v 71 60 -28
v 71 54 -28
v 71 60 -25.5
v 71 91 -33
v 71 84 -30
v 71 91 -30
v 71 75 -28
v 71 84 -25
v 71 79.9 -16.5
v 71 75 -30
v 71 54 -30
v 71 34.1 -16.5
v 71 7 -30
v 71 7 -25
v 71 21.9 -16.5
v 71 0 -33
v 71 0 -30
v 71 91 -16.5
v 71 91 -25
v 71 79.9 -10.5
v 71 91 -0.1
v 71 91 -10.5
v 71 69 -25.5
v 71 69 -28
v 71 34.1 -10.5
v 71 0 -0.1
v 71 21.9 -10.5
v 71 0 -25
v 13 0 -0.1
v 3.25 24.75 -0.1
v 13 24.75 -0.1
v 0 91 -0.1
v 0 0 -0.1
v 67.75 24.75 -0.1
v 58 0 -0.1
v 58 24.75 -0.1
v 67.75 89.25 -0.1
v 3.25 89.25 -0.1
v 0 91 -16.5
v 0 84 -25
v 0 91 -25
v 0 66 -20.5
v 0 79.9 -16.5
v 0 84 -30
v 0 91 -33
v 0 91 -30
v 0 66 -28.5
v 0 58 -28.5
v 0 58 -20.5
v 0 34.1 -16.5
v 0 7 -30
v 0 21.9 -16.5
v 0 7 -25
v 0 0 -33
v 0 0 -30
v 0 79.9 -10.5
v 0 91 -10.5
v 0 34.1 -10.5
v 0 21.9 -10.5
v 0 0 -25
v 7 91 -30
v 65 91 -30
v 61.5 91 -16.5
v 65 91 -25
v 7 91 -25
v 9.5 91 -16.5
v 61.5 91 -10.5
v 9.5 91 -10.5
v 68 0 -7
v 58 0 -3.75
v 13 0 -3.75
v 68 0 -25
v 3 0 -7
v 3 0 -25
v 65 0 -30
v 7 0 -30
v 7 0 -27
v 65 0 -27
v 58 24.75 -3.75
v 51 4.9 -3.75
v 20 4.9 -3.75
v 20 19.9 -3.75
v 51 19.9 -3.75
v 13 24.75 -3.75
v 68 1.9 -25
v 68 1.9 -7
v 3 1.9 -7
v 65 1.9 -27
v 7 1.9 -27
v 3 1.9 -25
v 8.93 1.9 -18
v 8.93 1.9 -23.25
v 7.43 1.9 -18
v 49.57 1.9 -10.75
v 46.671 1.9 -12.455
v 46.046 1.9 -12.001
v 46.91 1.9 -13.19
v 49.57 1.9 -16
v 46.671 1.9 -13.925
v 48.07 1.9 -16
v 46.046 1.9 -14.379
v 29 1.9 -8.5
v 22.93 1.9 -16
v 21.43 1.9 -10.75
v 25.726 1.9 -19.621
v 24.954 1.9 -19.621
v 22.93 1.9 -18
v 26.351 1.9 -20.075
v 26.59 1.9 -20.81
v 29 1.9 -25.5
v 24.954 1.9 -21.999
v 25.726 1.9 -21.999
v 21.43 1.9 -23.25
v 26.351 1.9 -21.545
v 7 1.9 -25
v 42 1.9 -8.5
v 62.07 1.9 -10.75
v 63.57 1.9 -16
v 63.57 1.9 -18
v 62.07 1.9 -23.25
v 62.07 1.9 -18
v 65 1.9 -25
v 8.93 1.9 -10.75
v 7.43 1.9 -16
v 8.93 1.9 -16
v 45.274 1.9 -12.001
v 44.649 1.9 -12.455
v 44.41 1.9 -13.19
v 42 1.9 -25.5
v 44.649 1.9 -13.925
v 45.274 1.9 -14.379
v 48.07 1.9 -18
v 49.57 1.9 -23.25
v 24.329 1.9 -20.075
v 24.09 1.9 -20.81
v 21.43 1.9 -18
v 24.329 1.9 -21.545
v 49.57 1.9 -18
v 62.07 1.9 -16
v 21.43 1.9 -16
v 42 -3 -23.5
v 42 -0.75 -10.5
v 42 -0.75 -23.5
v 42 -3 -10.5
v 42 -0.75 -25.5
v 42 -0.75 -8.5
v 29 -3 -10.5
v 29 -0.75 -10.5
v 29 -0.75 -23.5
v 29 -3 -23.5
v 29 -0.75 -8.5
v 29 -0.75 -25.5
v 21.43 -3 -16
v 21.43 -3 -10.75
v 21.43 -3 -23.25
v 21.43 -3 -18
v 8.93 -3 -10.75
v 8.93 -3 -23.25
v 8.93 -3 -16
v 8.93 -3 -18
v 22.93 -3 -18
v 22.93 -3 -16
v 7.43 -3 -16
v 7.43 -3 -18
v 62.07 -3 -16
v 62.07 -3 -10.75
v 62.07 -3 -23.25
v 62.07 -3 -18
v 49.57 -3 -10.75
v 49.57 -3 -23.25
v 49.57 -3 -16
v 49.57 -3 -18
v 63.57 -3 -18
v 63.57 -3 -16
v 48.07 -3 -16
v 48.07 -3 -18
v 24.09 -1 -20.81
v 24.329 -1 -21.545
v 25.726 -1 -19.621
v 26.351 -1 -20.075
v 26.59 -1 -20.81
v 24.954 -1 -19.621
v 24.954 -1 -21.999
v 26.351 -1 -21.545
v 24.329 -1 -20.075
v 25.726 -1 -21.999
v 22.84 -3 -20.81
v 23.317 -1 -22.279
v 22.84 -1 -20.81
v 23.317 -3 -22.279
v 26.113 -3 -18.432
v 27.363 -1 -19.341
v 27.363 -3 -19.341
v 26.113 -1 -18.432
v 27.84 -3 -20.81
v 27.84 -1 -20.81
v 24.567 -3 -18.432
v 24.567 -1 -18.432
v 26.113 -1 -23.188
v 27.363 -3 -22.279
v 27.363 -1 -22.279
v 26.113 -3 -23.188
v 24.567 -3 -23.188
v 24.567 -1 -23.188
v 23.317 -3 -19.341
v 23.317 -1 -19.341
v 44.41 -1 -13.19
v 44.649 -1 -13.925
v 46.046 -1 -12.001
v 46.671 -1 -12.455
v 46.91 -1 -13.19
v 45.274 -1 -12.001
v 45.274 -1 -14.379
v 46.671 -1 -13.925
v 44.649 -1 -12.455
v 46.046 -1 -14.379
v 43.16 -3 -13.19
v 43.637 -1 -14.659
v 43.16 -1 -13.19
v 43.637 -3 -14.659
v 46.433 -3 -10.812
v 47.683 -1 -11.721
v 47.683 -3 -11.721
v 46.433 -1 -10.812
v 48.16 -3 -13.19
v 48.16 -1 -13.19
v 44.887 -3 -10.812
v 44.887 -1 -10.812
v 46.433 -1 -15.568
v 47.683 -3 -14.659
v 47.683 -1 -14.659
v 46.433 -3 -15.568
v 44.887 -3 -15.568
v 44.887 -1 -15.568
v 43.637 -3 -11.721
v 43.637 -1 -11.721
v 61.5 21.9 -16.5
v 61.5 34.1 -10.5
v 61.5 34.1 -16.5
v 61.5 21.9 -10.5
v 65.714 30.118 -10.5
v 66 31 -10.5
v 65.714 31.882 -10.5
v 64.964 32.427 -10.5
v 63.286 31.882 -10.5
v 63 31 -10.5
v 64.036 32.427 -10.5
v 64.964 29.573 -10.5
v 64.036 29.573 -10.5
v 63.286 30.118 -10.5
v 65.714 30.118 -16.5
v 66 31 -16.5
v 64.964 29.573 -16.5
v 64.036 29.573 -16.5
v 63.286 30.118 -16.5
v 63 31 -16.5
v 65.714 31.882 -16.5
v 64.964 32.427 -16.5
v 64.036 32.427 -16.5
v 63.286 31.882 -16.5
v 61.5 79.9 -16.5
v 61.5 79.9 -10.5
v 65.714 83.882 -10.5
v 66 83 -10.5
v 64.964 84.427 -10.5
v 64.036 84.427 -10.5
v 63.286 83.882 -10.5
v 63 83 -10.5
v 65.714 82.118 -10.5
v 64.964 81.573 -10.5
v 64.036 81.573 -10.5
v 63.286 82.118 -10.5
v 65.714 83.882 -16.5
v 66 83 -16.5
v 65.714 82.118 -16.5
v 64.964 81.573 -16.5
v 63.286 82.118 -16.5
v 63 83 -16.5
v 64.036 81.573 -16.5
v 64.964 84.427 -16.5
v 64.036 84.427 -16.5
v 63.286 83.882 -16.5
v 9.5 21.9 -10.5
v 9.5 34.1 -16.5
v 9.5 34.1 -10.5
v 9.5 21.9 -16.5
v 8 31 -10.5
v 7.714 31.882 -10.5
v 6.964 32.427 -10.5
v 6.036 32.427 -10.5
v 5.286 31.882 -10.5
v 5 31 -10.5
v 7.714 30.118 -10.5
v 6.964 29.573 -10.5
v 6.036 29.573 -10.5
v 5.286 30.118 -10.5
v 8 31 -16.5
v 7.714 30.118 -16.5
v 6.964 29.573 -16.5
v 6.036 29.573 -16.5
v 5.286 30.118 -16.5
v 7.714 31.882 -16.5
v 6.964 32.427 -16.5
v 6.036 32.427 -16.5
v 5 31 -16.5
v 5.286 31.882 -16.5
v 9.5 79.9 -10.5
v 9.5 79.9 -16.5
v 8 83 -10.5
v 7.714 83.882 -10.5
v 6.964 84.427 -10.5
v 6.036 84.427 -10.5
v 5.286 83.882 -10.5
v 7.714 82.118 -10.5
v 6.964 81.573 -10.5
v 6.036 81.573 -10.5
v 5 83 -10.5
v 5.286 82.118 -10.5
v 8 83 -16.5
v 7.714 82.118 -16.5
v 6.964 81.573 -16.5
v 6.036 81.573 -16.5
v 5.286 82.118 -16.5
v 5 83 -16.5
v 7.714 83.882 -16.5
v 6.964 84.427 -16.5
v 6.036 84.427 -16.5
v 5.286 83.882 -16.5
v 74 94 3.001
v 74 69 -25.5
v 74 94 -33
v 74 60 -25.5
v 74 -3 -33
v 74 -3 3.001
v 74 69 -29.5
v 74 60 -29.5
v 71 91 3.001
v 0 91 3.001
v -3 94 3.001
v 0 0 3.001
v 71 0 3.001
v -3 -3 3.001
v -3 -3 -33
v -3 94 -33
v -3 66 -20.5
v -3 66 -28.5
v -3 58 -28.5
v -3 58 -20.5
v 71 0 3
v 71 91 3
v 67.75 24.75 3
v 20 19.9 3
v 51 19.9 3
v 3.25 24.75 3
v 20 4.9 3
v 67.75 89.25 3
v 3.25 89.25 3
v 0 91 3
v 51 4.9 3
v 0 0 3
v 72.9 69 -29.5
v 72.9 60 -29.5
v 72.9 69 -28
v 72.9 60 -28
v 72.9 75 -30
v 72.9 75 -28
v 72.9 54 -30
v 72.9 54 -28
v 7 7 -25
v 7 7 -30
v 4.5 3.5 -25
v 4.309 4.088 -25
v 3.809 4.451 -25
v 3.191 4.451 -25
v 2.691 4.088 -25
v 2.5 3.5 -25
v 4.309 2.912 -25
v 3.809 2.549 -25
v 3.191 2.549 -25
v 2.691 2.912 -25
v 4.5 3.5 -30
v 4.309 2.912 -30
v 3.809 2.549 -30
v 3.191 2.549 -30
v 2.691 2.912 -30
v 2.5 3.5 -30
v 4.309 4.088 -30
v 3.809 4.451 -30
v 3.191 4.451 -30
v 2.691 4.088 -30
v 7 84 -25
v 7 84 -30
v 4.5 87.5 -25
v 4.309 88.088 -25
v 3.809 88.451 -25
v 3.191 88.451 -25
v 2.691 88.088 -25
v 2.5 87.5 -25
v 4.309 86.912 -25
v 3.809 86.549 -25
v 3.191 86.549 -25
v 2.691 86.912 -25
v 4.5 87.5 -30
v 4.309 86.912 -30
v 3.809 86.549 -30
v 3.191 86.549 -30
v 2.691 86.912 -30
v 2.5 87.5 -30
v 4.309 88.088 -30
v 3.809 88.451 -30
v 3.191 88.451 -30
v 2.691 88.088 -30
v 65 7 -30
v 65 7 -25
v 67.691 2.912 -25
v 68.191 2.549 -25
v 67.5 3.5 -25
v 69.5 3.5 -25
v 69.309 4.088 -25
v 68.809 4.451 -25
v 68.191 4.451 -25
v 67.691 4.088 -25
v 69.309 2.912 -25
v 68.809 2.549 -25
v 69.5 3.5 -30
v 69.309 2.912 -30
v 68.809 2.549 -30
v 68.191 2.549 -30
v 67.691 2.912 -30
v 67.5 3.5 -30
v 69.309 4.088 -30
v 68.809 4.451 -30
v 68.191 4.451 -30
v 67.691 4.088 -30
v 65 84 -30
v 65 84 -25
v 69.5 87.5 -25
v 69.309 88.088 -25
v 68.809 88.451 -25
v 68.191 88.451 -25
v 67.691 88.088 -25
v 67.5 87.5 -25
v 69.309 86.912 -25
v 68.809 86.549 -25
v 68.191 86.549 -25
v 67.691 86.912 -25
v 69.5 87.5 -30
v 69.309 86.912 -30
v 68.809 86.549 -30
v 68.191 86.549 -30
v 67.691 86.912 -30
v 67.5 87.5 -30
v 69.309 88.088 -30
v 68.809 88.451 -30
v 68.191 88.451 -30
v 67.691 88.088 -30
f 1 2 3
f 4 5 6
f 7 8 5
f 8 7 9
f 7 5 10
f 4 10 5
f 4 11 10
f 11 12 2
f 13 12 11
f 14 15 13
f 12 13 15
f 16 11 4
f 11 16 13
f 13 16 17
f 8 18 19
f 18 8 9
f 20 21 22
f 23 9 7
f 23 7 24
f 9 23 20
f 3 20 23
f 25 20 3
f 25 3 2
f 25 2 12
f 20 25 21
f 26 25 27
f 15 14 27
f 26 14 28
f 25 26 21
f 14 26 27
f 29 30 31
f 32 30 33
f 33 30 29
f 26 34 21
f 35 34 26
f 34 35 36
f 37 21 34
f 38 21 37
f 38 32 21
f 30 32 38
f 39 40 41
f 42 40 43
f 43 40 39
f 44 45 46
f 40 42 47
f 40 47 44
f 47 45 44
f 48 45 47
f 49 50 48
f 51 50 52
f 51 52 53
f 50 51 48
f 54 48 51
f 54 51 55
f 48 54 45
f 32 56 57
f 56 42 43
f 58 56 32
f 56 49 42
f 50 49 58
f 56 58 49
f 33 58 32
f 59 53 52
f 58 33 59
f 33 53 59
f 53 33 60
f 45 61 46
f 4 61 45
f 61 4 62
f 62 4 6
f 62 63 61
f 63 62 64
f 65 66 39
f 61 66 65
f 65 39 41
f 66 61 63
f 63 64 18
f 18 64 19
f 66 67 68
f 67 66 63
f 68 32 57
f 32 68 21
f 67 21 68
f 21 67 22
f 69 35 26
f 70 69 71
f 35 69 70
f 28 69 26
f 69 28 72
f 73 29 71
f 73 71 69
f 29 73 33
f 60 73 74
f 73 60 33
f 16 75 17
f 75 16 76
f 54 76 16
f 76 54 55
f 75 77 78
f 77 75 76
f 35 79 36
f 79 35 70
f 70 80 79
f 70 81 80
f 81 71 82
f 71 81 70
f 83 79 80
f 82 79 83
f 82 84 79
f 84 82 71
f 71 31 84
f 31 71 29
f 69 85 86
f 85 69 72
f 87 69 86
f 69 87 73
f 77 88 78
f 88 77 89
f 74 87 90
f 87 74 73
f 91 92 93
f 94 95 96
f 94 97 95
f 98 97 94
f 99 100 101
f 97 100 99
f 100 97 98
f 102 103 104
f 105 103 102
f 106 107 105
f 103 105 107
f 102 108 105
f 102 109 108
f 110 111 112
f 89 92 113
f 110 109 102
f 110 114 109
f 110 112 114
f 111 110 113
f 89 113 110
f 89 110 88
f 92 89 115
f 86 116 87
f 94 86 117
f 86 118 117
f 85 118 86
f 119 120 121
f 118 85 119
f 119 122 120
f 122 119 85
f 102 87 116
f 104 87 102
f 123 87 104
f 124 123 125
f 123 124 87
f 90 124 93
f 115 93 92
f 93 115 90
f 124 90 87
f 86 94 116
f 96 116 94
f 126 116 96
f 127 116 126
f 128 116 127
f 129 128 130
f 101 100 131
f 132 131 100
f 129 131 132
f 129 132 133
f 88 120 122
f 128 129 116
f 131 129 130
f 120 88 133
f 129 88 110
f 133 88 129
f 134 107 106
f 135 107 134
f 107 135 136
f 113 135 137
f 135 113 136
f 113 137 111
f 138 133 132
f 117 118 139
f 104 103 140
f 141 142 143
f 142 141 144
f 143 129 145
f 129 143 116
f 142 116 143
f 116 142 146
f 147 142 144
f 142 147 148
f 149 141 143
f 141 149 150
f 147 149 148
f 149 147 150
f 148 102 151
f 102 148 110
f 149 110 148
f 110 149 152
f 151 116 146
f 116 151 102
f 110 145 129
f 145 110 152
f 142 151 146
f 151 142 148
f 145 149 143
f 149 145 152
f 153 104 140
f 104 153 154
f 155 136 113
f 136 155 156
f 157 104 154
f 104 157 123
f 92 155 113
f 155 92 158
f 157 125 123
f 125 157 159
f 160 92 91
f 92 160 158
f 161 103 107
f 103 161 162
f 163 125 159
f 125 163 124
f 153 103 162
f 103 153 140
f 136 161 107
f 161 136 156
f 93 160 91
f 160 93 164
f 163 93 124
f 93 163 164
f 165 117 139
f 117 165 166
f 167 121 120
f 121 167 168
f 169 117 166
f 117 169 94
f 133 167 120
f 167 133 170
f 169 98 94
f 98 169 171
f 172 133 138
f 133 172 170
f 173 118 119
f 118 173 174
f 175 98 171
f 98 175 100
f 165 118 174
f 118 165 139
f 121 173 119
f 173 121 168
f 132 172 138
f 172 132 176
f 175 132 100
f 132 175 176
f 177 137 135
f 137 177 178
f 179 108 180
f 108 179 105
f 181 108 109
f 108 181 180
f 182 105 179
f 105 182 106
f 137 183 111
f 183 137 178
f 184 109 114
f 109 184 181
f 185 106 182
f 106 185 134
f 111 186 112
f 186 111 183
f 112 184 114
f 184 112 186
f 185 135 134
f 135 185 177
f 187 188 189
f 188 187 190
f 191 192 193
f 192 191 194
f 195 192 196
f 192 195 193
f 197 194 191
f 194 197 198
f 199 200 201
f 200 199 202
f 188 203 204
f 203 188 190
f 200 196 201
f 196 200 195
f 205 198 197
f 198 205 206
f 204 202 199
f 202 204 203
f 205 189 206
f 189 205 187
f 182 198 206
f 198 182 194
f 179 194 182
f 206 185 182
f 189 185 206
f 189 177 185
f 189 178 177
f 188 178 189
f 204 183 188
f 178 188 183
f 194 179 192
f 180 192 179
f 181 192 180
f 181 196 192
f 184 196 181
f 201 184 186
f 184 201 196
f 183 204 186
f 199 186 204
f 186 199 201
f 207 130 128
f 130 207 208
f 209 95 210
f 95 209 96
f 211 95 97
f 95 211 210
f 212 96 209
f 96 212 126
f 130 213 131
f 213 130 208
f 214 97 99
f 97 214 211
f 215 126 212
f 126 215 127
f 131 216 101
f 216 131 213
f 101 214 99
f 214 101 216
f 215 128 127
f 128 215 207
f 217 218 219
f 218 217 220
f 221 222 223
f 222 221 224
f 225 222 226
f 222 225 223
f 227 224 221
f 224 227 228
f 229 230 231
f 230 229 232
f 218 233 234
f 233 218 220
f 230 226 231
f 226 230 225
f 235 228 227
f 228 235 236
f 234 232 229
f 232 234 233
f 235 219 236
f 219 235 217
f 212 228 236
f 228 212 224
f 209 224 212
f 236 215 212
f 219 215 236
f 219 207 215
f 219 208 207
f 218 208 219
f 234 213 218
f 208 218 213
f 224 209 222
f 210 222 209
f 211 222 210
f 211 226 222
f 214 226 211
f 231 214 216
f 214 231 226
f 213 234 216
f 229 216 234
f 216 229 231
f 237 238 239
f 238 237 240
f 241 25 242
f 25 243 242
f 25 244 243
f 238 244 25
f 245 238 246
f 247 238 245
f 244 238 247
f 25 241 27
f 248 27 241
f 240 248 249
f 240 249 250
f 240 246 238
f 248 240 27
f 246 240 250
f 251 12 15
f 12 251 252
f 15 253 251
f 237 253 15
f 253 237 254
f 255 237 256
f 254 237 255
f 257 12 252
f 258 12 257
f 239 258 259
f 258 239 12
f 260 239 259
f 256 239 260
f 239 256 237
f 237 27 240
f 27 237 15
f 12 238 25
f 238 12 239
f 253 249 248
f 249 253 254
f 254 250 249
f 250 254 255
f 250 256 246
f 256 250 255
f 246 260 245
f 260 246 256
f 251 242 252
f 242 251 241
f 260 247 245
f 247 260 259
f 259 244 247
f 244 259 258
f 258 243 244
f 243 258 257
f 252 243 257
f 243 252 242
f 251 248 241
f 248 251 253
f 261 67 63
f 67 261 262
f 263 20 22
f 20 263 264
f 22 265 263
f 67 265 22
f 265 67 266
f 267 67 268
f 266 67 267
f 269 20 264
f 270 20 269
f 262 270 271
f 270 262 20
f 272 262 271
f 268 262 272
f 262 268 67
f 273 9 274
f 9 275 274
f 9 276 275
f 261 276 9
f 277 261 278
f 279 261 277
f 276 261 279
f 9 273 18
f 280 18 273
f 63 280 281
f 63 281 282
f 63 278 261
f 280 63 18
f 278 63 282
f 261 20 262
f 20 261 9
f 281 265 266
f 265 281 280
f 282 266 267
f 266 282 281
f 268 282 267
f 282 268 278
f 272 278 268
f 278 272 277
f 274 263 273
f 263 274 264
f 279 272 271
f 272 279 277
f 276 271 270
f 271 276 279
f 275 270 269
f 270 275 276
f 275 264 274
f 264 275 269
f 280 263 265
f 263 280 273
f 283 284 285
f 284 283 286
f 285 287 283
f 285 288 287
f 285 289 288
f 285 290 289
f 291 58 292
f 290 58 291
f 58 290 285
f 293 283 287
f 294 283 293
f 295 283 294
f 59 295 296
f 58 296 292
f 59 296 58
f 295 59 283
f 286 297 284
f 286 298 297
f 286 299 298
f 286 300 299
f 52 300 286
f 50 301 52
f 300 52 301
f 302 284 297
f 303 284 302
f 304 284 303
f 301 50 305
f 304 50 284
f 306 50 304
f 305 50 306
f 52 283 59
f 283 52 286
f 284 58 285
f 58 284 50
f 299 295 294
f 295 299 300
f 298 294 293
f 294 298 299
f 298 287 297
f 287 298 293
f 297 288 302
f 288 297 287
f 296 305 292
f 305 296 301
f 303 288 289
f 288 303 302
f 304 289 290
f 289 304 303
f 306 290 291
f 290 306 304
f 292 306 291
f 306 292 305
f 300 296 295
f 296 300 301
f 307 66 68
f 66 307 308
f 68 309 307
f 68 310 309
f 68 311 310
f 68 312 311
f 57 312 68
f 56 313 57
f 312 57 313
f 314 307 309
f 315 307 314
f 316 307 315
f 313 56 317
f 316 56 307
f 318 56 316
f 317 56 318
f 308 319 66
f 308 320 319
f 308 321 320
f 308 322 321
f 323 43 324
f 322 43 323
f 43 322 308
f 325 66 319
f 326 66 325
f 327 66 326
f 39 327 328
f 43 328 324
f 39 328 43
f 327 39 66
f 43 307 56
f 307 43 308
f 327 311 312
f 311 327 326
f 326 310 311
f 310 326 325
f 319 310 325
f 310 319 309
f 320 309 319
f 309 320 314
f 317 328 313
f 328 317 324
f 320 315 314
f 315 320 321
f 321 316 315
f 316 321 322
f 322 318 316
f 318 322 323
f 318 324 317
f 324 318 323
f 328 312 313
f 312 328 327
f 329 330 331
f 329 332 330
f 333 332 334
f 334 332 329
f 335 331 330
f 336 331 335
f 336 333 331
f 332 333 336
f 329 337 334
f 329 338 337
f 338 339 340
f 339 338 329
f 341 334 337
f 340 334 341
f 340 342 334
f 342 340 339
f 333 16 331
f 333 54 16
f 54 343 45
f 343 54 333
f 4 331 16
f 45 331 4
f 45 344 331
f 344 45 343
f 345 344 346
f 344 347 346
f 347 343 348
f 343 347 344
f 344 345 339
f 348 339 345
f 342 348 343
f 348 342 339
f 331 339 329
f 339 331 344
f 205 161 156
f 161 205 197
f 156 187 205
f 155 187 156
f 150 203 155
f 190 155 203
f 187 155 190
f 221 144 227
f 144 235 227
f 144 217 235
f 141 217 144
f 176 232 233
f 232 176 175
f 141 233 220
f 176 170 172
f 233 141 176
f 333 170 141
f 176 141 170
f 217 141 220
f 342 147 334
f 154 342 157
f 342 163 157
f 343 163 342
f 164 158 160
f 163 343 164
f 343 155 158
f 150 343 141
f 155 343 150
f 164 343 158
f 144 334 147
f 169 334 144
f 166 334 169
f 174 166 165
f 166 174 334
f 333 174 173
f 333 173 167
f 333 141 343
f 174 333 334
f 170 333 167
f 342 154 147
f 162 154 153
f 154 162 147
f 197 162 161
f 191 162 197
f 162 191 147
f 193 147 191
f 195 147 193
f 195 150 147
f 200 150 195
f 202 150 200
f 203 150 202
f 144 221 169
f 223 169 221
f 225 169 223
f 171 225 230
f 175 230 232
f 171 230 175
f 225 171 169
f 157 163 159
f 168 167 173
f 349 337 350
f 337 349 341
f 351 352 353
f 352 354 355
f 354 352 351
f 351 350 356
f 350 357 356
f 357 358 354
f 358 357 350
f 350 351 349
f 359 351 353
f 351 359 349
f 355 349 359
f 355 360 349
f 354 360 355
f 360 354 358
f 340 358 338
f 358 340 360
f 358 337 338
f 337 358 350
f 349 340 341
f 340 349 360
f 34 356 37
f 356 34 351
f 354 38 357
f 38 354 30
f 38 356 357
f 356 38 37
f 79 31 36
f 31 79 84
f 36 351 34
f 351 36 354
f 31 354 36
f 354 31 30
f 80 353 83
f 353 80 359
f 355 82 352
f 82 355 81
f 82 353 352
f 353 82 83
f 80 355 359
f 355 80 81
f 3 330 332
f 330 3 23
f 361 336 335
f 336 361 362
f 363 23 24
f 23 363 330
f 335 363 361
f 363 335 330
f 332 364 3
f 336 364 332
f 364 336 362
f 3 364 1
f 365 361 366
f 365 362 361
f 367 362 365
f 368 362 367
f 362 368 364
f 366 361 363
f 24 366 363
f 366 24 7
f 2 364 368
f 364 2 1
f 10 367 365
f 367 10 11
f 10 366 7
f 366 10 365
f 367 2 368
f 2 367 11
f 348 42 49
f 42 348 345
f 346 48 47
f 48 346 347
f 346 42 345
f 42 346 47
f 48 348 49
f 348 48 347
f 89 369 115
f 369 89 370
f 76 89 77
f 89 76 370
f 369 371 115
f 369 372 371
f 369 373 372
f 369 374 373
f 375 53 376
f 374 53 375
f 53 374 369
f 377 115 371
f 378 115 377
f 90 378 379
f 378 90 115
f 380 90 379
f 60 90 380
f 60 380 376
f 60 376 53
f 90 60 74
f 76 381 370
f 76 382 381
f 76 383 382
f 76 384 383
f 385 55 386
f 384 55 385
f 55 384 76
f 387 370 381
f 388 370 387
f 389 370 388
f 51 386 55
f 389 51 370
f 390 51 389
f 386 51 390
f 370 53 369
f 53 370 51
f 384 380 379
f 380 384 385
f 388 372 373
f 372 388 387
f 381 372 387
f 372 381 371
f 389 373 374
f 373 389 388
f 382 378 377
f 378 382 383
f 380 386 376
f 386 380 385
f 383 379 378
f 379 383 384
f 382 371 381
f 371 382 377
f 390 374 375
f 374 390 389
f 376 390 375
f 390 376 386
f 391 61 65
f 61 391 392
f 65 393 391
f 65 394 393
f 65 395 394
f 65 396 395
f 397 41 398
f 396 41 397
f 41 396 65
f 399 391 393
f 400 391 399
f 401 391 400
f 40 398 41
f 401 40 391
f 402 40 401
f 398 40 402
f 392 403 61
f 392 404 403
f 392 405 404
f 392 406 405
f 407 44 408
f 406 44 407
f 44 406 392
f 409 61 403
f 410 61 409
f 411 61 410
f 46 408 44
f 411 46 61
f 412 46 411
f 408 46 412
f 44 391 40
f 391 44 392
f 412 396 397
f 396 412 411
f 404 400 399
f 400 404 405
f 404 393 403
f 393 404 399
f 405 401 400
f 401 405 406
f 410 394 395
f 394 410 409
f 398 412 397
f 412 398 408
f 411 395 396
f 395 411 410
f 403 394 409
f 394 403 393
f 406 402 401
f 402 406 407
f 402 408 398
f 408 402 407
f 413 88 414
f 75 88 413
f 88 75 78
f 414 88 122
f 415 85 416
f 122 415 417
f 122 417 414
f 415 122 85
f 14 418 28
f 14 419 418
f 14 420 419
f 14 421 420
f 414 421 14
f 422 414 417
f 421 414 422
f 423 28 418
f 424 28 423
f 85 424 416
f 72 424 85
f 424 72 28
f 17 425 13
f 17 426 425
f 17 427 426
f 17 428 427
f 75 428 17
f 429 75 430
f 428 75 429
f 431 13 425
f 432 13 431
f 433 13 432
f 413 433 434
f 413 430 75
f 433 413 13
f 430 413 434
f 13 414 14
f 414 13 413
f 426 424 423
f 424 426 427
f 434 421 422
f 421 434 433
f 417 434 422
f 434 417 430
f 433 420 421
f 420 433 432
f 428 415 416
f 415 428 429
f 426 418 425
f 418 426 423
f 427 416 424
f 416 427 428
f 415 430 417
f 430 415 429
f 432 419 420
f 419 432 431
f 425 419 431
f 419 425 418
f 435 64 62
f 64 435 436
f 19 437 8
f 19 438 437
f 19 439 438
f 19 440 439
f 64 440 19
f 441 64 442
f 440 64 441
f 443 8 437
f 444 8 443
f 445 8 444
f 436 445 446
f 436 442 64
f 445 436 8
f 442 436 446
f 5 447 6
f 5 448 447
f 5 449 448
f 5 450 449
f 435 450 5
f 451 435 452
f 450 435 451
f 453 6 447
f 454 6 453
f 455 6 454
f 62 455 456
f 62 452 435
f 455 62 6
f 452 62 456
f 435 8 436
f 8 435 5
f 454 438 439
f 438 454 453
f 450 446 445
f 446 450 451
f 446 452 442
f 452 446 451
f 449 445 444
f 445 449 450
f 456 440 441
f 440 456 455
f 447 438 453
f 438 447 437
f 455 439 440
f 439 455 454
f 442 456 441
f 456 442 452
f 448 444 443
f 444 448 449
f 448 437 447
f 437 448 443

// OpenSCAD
// box for 16x16 timer
//  top side (closed) is where displays are
//  bottom side is closed with lid, made out of PCB

// rev 2 ("yellow") comments:
//  - Printed with 10mm brim, "high detail" mode. This was very slow,
//    but came out great.
//  - 256PX hole supports were so thick I had to switch to 12mm screws
//    which I only have in 2.6 mm dia.. so had to drill out the holes
//  - power button hole wrong (too tall) - not a real problem
//  - USB hole wrong (shifted by 1mm) - had to file it
//  - both power button and USB connection stick out of board.. so any time
//    board is installed/removed, there is a pressure on power button. 
//    It works so far, but I suspect button might fail eventually
//  - 7-segment display was a bit tricky to install due to control board
//    extra base overhanging.. but managed eventually. Maybe shorten
//    that extra base a bit.
//  - cutting corners of controls board was a pain. Maybe reduce size of PCB
//    mounting block?

WALL = 3;

// "Lip" on top, to conceal sides of red film
// walls are reduced thickness, as they are not structural
// NOTE: lip sounded like a great idea but my printer can't print it
// at h=1. So setting it to almost 0 to disable
LIP_HEIGHT = 0.001; 
LIP_WALL = 3;

// bottom lip height. walls are full thickness
// (this is offset from PCB mounting blocks to bottom of the box,
// if this is = to PCB thickness, the bottom would be even)
BOTTOM_LIP_HEIGHT = 3;

// inner X/Y is defined by PCB size, which is used as a bottom cover
INNER_X = 70 + 1; // don't forget some slop
INNER_Y = 90 + 1;
INNER_Z = 30;

// PCB mounting block hole offset from board edge
PCB_HOLE_X1 = 3.5;
PCB_HOLE_X2 = 2.5;
PCB_HOLE_Y = 3.5;
PCB_BLOCK_Z = 5;  // mounting block Z thickness
PCB_BLOCK_XY = 7; // mounting block X/Y extra 

// 7-segment (for time)
// mounting PCB is non-symmetric, but we don't bother to mode it fully,
// and instead increase sizes so that both sides fit, assuming display is centered
// (real one is smaller on one side)
PCB_Y_7SEG = 25; // height of PCB, _if_ it were symmetric
PCB_X_7SEG = 45; // width of PCB, _if_ it were symmetric
// center Y, Z offset
OFFSET_Y_7SEG = PCB_Y_7SEG / 2 - 0.1;
// top of PCB to top of display
HEIGHT_7SEG = 7.5;

// no overlap with Y- wall (except tiny one to avoid rounding errors)
assert((OFFSET_Y_7SEG - PCB_Y_7SEG/2) >= -0.1);

// 16x16 module, made out of quad 8x8
SIZE_256PX = 64; // module is square
SLOP_256PX = 0.5; // evenly spread across both sizes
THICKNESS_256PX = 13.5; // front panel to back of PCB
OFFSET_Y_256PX = INNER_Y - SIZE_256PX / 2 - 2; // Y of centerpoint of display
MNT_256PX_X_OFFS = 3; // hole offset X, from side
MNT_256PX_Y_OFFS = 6; // hole offset Y, from side
MNT_256PX_SIZE = 6;  // Y axis is twice as much

// overlap with 7-segment display is not too big (small one is OK)
assert((OFFSET_Y_7SEG + PCB_Y_7SEG/2 - 8) <= 
       (OFFSET_Y_256PX - SIZE_256PX/2));

CONTROLS_CENTER_Z = INNER_Z / 2 + 2; // slightly shifted to front
       
// Charger hole, size - need to fit "most" usb cables,
// and there is a power switch underneath too
CHARGER_HOLE_SIZE_Y = 9;
CHARGER_HOLE_SIZE_Z = 4;
CHARGER_HOLE_PCB_Y = 21;
CHARGER_HOLE_PCB_Z = 2;
// and center offset
CHARGER_HOLE_OFFSET_Y = 26.5; // PCB side to center of hole
CHARGER_HOLE_OFFSET_Z = 0.5; // PCB inner surface to bottomhole
       
// power switch - which is 7x7 button with right angle mount
POWER_HOLE_SIZE_Y = 8;
POWER_HOLE_SIZE_Z = 8;
// and center offset
POWER_HOLE_OFFSET_Y = 29; // PCB side to center of switch
POWER_HOLE_OFFSET_Z = 1.5; // PCB inner surface to bottom of button hole

/*
// battery box (which is a single AA holder with 14500 lipo inside)
// (bare battery: 53x14x14, holder: 59x17x17)
BBOX_SIZE_X = INNER_X + 0.1;
BBOX_SIZE_Y = 14;
BBOX_SIZE_Z = 14;
BBOX_WALL = 2;
*/
     
difference() {   
    // outer walls
    // Zmin = INNER_Z + BOTOMLIP_HEIGHT
    // Zmax = WALL + LIP_HEIGHT
    translate([-WALL, -WALL, -INNER_Z - BOTTOM_LIP_HEIGHT])
    cube([INNER_X + 2*WALL, INNER_Y + 2*WALL, 
          INNER_Z + WALL + BOTTOM_LIP_HEIGHT + LIP_HEIGHT]);
    
    difference() {
        // main volume for PCB
        translate([0, 0, -(INNER_Z + 100) - 0.1])
        cube([INNER_X, INNER_Y, INNER_Z + 100]);
        
        // extra base for 7-segment digits
        translate([INNER_X / 2, OFFSET_Y_7SEG, 0])
        cube([PCB_X_7SEG, PCB_Y_7SEG, HEIGHT_7SEG], center=true);
        
        // extra base control buttons backplane 
        translate([INNER_X / 2 - 65/2, -0.1, -CONTROLS_CENTER_Z - 20/2])
        cube([65, 2, 20]);

        /*
        // battery box
        translate([INNER_X / 2 - BBOX_SIZE_X / 2 - BBOX_WALL, 
                   INNER_Y - BBOX_SIZE_Y - BBOX_WALL - 0.1,
                   -INNER_Z])
        cube([BBOX_SIZE_X + BBOX_WALL * 2, 
              BBOX_SIZE_Y + BBOX_WALL, 
              BBOX_SIZE_Z + BBOX_WALL]);
        */
    }

    /*
    // battery box cutout
    translate([INNER_X / 2 - BBOX_SIZE_X / 2, 
               INNER_Y - BBOX_SIZE_Y,
               -INNER_Z - 0.1])
    cube([BBOX_SIZE_X, BBOX_SIZE_Y, BBOX_SIZE_Z + 0.1]);
    */

    // Top lip cutout
    translate([LIP_WALL-WALL, LIP_WALL-WALL, WALL])
    cube([INNER_X - 2*(LIP_WALL-WALL), INNER_Y - 2*(LIP_WALL-WALL), 100]);
        
    // cutout for 256PX (16x16) display
    translate([INNER_X / 2, OFFSET_Y_256PX, 0])
    cube([SIZE_256PX + SLOP_256PX, SIZE_256PX + SLOP_256PX, THICKNESS_256PX],
         center=true);
    
    // cutout for 7-segment digits
    // (we don't bother with mouting holes, they are drilled in place)
    translate([INNER_X / 2, OFFSET_Y_7SEG, 0])
    cube([31, 15, 100], center=true);
    
    /*
    // cutout for encoder, 25LB10Q model
    translate([INNER_X / 2, 1, -INNER_Z / 2])
    rotate([90, 0, 0]) {
        cylinder(d=8.5, h=10);  // main shft
        // anti-rotatino hole
        translate([0, -10, 0]) cylinder(d=4, h=10);
        // body - a slight dip (note contacts are 2 more mm)        
        cube([22, 22, 4], center=true);        
    }
    */
    
    // cutout for encoder, unnamed PCB-mount model
    translate([INNER_X / 2, 1, -CONTROLS_CENTER_Z]) {
        // main body
        cube([13, 20, 13], center=true);
        // expand top/bottom side for contacts
        cube([13, 3.5, 17], center=true);
    }
    
    // cutout for control buttons
    for (ox=[-1, 1])
    translate([INNER_X / 2 + ox * 8 * 2.54, 1, -CONTROLS_CENTER_Z]) {
        cube([12.5, 10, 12.5], center=true);
        // extra for light connectors
        cube([15.5, 10, 2], center=true);
    }
    
    // holes for control panel mount
    for (ox=[-1, 1])
    translate([INNER_X / 2 + ox * 4 * 2.54, 
                1, 
                -CONTROLS_CENTER_Z + ox * 1.5 * 2.54])
        rotate([90, 0, 0]) {
        // hole
        cylinder(d=2.5, h=30, center=true, $fn=10);
        // concealed head
        translate([0, 0, WALL - 1])
        cylinder(d=5, h=10, $fn=10);
        }
            
           
    // cutout for power button - a latching, lighted model
    //translate([INNER_X * 0.75, INNER_Y - 1, -INNER_Z / 2])
    //rotate([-90, 0, 0])
    //cylinder(d=12, h=10);
    
    // port for USB connection
    translate([INNER_X - 1,
               INNER_Y - CHARGER_HOLE_OFFSET_Y - CHARGER_HOLE_SIZE_Y / 2, 
               -INNER_Z + CHARGER_HOLE_OFFSET_Z])
    cube([10, CHARGER_HOLE_SIZE_Y, CHARGER_HOLE_SIZE_Z]);
    
    // a small cutout for PCB that USB connector is mounted on
    translate([INNER_X - 0.1,
               INNER_Y - CHARGER_HOLE_OFFSET_Y - CHARGER_HOLE_PCB_Y / 2, 
               -INNER_Z])
    cube([WALL - 1, CHARGER_HOLE_PCB_Y, CHARGER_HOLE_PCB_Z]);
    
    translate([-10,
               INNER_Y - POWER_HOLE_OFFSET_Y - POWER_HOLE_SIZE_Y/2, 
               -INNER_Z + POWER_HOLE_OFFSET_Z])
    cube([20, POWER_HOLE_SIZE_Y, POWER_HOLE_SIZE_Z]);
}

// 256PX mounting blocks
mount_block_hole_x = (INNER_X - SIZE_256PX) / 2 + MNT_256PX_X_OFFS;
for (ox=[-1, 1]) for (oy=[-1, 1])
    translate([INNER_X/2 - ox * INNER_X / 2, 
               oy * (SIZE_256PX - 2*MNT_256PX_Y_OFFS) / 2 + OFFSET_Y_256PX, 
               -THICKNESS_256PX - WALL])
    scale([ox, oy, 1])
    difference() {
        translate([-0.1, 
                   -(MNT_256PX_SIZE + 0.2)/2, 
                   0])
        cube([mount_block_hole_x + MNT_256PX_SIZE / 2 + 0.1, 
              2 * MNT_256PX_SIZE+0.2, 
              MNT_256PX_SIZE]);
        
        translate([mount_block_hole_x, 0, -1])
        cylinder(d=3, h=30, $fn=10);
}


// PCB mounting blocks
for (ox=[0, 1]) for (oy=[0, 1])
    translate([ox * INNER_X, oy * INNER_Y, -INNER_Z])
    scale([ (ox ? -1 : 1), (oy ? -1 : 1), 1])
    difference() {
        hole_x = (ox ? PCB_HOLE_X2 : PCB_HOLE_X1);
        translate([-0.1, 
                  PCB_HOLE_Y -PCB_BLOCK_XY / 2 - 0.1, 
                  0])
        cube([hole_x + PCB_BLOCK_XY / 2 + 0.1, 
              PCB_BLOCK_XY + 0.1, 
              PCB_BLOCK_Z]);
        
        translate([hole_x, PCB_HOLE_Y, -5])
        cylinder(d=2, h=30, $fn=10);
    }
